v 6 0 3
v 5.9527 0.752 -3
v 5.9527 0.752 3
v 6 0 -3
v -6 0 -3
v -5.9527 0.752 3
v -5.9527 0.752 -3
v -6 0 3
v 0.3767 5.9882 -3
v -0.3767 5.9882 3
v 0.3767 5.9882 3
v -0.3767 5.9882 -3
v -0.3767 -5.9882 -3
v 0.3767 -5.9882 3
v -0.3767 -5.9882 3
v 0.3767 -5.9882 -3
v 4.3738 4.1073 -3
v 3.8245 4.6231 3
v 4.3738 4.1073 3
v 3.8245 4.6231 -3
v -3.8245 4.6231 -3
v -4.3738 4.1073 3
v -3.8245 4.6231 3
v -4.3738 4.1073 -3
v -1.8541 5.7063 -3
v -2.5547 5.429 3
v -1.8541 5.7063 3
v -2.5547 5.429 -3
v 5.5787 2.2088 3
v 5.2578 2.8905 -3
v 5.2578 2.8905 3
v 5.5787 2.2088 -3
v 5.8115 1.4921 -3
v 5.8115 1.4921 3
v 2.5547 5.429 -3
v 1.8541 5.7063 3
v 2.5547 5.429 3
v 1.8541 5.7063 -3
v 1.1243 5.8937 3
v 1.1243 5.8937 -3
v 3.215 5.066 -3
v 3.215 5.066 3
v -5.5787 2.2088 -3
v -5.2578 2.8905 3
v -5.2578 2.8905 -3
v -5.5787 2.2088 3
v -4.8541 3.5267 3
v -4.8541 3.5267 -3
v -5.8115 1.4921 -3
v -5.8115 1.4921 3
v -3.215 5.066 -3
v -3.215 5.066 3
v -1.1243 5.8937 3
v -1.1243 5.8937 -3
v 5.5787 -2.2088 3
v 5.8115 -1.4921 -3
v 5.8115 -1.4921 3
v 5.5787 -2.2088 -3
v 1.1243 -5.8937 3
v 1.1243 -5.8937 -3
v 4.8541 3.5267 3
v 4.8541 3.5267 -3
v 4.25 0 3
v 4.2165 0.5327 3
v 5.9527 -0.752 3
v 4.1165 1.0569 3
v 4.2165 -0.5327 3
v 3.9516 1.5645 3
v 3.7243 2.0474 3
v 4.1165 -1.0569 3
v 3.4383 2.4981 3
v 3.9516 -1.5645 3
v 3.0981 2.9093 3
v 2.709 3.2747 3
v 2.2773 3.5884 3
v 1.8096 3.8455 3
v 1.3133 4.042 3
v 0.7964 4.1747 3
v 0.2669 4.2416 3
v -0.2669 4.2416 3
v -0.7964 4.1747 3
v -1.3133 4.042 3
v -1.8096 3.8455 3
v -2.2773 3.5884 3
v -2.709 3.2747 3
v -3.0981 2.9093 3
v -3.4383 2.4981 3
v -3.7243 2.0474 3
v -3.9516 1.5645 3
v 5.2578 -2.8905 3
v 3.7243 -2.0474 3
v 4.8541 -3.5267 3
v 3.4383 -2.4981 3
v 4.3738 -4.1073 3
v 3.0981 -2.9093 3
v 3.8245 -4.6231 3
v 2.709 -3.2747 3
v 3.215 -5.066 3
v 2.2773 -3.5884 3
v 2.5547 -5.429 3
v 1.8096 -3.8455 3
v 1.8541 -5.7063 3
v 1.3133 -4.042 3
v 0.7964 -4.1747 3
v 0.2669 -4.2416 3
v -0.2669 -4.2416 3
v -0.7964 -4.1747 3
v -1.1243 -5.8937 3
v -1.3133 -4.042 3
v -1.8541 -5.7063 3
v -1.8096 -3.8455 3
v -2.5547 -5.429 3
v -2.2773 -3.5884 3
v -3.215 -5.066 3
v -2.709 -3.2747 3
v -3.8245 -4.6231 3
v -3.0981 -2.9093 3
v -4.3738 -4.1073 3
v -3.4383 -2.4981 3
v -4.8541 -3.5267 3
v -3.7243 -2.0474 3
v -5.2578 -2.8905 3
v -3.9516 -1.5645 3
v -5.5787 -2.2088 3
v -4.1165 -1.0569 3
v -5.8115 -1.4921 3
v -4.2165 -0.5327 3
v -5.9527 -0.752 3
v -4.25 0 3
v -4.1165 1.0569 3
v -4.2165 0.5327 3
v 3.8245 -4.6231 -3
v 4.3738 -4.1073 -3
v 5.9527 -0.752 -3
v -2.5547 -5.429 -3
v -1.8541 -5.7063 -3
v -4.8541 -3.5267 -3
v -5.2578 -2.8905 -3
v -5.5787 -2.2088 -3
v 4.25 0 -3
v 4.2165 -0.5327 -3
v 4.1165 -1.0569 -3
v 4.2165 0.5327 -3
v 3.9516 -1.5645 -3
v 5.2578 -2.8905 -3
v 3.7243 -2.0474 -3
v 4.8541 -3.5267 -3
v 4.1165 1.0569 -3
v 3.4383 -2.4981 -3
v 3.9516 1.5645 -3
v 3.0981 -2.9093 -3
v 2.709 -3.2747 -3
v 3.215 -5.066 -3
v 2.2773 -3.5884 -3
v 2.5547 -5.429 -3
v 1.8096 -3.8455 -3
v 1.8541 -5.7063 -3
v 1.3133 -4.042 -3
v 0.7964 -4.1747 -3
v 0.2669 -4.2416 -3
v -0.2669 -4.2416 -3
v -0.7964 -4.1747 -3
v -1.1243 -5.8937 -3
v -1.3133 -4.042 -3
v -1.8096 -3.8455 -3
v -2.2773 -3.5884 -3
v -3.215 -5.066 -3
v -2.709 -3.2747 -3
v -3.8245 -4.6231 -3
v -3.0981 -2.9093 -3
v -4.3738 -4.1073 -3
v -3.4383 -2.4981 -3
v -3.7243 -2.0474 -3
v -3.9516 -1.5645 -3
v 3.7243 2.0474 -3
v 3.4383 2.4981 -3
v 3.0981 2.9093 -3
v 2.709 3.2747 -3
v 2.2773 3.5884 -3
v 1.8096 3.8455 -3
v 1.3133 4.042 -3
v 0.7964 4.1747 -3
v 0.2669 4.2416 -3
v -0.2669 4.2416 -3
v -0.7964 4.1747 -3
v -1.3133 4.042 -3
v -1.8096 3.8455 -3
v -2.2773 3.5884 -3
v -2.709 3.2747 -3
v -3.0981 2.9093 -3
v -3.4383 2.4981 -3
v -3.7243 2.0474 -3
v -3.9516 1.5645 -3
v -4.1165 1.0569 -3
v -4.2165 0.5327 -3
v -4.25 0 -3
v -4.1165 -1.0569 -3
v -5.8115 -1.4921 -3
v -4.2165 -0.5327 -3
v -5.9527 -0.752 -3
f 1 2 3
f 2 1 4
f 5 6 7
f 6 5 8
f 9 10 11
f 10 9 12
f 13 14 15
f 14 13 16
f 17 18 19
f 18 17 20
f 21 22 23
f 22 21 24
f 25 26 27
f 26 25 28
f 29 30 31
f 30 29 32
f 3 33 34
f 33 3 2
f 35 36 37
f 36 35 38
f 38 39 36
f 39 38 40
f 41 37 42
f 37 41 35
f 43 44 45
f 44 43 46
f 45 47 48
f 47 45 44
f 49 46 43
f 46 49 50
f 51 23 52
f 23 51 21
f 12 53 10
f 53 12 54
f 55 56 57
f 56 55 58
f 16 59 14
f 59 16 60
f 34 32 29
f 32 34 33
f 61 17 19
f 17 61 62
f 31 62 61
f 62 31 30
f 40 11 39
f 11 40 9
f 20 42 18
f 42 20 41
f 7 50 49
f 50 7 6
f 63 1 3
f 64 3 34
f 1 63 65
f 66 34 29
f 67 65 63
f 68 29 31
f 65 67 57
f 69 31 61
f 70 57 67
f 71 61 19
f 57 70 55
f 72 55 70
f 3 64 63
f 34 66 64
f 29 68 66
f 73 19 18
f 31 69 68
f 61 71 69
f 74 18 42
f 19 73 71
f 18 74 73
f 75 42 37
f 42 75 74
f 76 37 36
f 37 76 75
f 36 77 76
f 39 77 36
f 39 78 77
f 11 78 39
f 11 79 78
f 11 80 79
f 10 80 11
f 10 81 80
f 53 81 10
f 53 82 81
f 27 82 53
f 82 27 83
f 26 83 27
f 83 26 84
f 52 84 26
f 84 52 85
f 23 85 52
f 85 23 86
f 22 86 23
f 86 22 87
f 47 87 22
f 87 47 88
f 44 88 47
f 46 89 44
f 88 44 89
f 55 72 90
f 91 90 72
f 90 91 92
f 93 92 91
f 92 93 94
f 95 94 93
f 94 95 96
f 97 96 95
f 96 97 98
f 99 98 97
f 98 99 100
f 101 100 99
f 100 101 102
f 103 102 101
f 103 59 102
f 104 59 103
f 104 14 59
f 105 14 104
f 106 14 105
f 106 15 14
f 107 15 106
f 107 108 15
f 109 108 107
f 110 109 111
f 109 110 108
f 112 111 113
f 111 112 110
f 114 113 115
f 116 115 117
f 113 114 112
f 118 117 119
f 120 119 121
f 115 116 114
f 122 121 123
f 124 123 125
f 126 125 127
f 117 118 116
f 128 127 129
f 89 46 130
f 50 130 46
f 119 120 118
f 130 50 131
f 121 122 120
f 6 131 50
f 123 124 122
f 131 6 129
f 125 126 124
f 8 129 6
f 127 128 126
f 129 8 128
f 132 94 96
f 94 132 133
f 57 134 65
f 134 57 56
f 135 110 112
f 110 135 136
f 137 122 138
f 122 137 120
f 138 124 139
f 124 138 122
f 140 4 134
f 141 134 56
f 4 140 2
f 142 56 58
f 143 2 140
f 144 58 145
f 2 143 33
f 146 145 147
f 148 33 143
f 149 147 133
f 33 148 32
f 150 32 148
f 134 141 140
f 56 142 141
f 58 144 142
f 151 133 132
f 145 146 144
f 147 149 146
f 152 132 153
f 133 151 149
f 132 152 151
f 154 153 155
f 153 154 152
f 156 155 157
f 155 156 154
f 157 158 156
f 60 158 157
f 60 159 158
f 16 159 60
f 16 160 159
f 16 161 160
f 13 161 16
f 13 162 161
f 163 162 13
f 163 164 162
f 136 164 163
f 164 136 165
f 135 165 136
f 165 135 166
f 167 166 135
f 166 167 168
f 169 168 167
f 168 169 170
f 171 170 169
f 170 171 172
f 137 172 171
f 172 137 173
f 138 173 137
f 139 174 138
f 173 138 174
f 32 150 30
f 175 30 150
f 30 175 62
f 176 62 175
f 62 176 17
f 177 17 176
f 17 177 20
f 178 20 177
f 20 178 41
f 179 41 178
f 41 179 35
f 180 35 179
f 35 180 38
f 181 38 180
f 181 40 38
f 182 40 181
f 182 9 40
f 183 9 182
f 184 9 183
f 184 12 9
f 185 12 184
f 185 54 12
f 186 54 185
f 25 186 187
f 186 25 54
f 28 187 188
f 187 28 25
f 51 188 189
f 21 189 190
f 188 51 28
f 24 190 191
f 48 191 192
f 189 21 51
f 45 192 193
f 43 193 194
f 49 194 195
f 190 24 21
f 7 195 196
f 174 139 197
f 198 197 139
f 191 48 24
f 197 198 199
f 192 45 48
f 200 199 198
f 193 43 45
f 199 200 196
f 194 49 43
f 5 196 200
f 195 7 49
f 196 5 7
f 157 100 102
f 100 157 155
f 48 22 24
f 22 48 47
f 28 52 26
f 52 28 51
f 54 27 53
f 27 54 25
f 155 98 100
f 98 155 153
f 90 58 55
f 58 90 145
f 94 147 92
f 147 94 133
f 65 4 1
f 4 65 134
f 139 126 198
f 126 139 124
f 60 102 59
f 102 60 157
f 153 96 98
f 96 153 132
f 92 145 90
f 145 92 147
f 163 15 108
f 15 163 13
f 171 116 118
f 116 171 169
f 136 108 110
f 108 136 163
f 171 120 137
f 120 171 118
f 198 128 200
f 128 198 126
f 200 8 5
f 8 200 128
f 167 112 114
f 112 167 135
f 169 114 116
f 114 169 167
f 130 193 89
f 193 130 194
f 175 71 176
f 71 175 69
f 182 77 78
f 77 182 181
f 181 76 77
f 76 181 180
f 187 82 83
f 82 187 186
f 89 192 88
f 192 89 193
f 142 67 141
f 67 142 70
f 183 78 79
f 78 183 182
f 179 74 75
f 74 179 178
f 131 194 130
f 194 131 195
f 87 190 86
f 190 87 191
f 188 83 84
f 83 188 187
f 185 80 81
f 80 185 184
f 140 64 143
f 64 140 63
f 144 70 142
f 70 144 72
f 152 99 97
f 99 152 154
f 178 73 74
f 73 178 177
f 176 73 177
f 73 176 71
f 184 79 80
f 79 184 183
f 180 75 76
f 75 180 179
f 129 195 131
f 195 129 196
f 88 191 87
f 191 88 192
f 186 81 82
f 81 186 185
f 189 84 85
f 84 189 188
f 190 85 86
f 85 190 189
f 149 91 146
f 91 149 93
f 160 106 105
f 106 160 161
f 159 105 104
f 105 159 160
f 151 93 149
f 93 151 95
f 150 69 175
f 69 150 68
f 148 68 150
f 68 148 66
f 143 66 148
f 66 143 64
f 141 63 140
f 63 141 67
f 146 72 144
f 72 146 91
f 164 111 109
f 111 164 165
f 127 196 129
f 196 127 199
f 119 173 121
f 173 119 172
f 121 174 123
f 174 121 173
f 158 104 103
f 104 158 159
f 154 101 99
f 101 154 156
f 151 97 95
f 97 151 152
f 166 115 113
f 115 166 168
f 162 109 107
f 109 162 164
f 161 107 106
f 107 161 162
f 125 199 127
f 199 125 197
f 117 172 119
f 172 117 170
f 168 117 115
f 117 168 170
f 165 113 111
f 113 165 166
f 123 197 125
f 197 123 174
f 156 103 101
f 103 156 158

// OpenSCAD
$fn = 50;


difference() {
	union() {
		translate(v = [0, 0, -3.0000000000]) {
			cylinder(h = 6, r = 6.0000000000);
		}
	}
	union() {
		translate(v = [0, 0, -100.0000000000]) {
			cylinder(h = 200, r = 4.2500000000);
		}
	}
}
